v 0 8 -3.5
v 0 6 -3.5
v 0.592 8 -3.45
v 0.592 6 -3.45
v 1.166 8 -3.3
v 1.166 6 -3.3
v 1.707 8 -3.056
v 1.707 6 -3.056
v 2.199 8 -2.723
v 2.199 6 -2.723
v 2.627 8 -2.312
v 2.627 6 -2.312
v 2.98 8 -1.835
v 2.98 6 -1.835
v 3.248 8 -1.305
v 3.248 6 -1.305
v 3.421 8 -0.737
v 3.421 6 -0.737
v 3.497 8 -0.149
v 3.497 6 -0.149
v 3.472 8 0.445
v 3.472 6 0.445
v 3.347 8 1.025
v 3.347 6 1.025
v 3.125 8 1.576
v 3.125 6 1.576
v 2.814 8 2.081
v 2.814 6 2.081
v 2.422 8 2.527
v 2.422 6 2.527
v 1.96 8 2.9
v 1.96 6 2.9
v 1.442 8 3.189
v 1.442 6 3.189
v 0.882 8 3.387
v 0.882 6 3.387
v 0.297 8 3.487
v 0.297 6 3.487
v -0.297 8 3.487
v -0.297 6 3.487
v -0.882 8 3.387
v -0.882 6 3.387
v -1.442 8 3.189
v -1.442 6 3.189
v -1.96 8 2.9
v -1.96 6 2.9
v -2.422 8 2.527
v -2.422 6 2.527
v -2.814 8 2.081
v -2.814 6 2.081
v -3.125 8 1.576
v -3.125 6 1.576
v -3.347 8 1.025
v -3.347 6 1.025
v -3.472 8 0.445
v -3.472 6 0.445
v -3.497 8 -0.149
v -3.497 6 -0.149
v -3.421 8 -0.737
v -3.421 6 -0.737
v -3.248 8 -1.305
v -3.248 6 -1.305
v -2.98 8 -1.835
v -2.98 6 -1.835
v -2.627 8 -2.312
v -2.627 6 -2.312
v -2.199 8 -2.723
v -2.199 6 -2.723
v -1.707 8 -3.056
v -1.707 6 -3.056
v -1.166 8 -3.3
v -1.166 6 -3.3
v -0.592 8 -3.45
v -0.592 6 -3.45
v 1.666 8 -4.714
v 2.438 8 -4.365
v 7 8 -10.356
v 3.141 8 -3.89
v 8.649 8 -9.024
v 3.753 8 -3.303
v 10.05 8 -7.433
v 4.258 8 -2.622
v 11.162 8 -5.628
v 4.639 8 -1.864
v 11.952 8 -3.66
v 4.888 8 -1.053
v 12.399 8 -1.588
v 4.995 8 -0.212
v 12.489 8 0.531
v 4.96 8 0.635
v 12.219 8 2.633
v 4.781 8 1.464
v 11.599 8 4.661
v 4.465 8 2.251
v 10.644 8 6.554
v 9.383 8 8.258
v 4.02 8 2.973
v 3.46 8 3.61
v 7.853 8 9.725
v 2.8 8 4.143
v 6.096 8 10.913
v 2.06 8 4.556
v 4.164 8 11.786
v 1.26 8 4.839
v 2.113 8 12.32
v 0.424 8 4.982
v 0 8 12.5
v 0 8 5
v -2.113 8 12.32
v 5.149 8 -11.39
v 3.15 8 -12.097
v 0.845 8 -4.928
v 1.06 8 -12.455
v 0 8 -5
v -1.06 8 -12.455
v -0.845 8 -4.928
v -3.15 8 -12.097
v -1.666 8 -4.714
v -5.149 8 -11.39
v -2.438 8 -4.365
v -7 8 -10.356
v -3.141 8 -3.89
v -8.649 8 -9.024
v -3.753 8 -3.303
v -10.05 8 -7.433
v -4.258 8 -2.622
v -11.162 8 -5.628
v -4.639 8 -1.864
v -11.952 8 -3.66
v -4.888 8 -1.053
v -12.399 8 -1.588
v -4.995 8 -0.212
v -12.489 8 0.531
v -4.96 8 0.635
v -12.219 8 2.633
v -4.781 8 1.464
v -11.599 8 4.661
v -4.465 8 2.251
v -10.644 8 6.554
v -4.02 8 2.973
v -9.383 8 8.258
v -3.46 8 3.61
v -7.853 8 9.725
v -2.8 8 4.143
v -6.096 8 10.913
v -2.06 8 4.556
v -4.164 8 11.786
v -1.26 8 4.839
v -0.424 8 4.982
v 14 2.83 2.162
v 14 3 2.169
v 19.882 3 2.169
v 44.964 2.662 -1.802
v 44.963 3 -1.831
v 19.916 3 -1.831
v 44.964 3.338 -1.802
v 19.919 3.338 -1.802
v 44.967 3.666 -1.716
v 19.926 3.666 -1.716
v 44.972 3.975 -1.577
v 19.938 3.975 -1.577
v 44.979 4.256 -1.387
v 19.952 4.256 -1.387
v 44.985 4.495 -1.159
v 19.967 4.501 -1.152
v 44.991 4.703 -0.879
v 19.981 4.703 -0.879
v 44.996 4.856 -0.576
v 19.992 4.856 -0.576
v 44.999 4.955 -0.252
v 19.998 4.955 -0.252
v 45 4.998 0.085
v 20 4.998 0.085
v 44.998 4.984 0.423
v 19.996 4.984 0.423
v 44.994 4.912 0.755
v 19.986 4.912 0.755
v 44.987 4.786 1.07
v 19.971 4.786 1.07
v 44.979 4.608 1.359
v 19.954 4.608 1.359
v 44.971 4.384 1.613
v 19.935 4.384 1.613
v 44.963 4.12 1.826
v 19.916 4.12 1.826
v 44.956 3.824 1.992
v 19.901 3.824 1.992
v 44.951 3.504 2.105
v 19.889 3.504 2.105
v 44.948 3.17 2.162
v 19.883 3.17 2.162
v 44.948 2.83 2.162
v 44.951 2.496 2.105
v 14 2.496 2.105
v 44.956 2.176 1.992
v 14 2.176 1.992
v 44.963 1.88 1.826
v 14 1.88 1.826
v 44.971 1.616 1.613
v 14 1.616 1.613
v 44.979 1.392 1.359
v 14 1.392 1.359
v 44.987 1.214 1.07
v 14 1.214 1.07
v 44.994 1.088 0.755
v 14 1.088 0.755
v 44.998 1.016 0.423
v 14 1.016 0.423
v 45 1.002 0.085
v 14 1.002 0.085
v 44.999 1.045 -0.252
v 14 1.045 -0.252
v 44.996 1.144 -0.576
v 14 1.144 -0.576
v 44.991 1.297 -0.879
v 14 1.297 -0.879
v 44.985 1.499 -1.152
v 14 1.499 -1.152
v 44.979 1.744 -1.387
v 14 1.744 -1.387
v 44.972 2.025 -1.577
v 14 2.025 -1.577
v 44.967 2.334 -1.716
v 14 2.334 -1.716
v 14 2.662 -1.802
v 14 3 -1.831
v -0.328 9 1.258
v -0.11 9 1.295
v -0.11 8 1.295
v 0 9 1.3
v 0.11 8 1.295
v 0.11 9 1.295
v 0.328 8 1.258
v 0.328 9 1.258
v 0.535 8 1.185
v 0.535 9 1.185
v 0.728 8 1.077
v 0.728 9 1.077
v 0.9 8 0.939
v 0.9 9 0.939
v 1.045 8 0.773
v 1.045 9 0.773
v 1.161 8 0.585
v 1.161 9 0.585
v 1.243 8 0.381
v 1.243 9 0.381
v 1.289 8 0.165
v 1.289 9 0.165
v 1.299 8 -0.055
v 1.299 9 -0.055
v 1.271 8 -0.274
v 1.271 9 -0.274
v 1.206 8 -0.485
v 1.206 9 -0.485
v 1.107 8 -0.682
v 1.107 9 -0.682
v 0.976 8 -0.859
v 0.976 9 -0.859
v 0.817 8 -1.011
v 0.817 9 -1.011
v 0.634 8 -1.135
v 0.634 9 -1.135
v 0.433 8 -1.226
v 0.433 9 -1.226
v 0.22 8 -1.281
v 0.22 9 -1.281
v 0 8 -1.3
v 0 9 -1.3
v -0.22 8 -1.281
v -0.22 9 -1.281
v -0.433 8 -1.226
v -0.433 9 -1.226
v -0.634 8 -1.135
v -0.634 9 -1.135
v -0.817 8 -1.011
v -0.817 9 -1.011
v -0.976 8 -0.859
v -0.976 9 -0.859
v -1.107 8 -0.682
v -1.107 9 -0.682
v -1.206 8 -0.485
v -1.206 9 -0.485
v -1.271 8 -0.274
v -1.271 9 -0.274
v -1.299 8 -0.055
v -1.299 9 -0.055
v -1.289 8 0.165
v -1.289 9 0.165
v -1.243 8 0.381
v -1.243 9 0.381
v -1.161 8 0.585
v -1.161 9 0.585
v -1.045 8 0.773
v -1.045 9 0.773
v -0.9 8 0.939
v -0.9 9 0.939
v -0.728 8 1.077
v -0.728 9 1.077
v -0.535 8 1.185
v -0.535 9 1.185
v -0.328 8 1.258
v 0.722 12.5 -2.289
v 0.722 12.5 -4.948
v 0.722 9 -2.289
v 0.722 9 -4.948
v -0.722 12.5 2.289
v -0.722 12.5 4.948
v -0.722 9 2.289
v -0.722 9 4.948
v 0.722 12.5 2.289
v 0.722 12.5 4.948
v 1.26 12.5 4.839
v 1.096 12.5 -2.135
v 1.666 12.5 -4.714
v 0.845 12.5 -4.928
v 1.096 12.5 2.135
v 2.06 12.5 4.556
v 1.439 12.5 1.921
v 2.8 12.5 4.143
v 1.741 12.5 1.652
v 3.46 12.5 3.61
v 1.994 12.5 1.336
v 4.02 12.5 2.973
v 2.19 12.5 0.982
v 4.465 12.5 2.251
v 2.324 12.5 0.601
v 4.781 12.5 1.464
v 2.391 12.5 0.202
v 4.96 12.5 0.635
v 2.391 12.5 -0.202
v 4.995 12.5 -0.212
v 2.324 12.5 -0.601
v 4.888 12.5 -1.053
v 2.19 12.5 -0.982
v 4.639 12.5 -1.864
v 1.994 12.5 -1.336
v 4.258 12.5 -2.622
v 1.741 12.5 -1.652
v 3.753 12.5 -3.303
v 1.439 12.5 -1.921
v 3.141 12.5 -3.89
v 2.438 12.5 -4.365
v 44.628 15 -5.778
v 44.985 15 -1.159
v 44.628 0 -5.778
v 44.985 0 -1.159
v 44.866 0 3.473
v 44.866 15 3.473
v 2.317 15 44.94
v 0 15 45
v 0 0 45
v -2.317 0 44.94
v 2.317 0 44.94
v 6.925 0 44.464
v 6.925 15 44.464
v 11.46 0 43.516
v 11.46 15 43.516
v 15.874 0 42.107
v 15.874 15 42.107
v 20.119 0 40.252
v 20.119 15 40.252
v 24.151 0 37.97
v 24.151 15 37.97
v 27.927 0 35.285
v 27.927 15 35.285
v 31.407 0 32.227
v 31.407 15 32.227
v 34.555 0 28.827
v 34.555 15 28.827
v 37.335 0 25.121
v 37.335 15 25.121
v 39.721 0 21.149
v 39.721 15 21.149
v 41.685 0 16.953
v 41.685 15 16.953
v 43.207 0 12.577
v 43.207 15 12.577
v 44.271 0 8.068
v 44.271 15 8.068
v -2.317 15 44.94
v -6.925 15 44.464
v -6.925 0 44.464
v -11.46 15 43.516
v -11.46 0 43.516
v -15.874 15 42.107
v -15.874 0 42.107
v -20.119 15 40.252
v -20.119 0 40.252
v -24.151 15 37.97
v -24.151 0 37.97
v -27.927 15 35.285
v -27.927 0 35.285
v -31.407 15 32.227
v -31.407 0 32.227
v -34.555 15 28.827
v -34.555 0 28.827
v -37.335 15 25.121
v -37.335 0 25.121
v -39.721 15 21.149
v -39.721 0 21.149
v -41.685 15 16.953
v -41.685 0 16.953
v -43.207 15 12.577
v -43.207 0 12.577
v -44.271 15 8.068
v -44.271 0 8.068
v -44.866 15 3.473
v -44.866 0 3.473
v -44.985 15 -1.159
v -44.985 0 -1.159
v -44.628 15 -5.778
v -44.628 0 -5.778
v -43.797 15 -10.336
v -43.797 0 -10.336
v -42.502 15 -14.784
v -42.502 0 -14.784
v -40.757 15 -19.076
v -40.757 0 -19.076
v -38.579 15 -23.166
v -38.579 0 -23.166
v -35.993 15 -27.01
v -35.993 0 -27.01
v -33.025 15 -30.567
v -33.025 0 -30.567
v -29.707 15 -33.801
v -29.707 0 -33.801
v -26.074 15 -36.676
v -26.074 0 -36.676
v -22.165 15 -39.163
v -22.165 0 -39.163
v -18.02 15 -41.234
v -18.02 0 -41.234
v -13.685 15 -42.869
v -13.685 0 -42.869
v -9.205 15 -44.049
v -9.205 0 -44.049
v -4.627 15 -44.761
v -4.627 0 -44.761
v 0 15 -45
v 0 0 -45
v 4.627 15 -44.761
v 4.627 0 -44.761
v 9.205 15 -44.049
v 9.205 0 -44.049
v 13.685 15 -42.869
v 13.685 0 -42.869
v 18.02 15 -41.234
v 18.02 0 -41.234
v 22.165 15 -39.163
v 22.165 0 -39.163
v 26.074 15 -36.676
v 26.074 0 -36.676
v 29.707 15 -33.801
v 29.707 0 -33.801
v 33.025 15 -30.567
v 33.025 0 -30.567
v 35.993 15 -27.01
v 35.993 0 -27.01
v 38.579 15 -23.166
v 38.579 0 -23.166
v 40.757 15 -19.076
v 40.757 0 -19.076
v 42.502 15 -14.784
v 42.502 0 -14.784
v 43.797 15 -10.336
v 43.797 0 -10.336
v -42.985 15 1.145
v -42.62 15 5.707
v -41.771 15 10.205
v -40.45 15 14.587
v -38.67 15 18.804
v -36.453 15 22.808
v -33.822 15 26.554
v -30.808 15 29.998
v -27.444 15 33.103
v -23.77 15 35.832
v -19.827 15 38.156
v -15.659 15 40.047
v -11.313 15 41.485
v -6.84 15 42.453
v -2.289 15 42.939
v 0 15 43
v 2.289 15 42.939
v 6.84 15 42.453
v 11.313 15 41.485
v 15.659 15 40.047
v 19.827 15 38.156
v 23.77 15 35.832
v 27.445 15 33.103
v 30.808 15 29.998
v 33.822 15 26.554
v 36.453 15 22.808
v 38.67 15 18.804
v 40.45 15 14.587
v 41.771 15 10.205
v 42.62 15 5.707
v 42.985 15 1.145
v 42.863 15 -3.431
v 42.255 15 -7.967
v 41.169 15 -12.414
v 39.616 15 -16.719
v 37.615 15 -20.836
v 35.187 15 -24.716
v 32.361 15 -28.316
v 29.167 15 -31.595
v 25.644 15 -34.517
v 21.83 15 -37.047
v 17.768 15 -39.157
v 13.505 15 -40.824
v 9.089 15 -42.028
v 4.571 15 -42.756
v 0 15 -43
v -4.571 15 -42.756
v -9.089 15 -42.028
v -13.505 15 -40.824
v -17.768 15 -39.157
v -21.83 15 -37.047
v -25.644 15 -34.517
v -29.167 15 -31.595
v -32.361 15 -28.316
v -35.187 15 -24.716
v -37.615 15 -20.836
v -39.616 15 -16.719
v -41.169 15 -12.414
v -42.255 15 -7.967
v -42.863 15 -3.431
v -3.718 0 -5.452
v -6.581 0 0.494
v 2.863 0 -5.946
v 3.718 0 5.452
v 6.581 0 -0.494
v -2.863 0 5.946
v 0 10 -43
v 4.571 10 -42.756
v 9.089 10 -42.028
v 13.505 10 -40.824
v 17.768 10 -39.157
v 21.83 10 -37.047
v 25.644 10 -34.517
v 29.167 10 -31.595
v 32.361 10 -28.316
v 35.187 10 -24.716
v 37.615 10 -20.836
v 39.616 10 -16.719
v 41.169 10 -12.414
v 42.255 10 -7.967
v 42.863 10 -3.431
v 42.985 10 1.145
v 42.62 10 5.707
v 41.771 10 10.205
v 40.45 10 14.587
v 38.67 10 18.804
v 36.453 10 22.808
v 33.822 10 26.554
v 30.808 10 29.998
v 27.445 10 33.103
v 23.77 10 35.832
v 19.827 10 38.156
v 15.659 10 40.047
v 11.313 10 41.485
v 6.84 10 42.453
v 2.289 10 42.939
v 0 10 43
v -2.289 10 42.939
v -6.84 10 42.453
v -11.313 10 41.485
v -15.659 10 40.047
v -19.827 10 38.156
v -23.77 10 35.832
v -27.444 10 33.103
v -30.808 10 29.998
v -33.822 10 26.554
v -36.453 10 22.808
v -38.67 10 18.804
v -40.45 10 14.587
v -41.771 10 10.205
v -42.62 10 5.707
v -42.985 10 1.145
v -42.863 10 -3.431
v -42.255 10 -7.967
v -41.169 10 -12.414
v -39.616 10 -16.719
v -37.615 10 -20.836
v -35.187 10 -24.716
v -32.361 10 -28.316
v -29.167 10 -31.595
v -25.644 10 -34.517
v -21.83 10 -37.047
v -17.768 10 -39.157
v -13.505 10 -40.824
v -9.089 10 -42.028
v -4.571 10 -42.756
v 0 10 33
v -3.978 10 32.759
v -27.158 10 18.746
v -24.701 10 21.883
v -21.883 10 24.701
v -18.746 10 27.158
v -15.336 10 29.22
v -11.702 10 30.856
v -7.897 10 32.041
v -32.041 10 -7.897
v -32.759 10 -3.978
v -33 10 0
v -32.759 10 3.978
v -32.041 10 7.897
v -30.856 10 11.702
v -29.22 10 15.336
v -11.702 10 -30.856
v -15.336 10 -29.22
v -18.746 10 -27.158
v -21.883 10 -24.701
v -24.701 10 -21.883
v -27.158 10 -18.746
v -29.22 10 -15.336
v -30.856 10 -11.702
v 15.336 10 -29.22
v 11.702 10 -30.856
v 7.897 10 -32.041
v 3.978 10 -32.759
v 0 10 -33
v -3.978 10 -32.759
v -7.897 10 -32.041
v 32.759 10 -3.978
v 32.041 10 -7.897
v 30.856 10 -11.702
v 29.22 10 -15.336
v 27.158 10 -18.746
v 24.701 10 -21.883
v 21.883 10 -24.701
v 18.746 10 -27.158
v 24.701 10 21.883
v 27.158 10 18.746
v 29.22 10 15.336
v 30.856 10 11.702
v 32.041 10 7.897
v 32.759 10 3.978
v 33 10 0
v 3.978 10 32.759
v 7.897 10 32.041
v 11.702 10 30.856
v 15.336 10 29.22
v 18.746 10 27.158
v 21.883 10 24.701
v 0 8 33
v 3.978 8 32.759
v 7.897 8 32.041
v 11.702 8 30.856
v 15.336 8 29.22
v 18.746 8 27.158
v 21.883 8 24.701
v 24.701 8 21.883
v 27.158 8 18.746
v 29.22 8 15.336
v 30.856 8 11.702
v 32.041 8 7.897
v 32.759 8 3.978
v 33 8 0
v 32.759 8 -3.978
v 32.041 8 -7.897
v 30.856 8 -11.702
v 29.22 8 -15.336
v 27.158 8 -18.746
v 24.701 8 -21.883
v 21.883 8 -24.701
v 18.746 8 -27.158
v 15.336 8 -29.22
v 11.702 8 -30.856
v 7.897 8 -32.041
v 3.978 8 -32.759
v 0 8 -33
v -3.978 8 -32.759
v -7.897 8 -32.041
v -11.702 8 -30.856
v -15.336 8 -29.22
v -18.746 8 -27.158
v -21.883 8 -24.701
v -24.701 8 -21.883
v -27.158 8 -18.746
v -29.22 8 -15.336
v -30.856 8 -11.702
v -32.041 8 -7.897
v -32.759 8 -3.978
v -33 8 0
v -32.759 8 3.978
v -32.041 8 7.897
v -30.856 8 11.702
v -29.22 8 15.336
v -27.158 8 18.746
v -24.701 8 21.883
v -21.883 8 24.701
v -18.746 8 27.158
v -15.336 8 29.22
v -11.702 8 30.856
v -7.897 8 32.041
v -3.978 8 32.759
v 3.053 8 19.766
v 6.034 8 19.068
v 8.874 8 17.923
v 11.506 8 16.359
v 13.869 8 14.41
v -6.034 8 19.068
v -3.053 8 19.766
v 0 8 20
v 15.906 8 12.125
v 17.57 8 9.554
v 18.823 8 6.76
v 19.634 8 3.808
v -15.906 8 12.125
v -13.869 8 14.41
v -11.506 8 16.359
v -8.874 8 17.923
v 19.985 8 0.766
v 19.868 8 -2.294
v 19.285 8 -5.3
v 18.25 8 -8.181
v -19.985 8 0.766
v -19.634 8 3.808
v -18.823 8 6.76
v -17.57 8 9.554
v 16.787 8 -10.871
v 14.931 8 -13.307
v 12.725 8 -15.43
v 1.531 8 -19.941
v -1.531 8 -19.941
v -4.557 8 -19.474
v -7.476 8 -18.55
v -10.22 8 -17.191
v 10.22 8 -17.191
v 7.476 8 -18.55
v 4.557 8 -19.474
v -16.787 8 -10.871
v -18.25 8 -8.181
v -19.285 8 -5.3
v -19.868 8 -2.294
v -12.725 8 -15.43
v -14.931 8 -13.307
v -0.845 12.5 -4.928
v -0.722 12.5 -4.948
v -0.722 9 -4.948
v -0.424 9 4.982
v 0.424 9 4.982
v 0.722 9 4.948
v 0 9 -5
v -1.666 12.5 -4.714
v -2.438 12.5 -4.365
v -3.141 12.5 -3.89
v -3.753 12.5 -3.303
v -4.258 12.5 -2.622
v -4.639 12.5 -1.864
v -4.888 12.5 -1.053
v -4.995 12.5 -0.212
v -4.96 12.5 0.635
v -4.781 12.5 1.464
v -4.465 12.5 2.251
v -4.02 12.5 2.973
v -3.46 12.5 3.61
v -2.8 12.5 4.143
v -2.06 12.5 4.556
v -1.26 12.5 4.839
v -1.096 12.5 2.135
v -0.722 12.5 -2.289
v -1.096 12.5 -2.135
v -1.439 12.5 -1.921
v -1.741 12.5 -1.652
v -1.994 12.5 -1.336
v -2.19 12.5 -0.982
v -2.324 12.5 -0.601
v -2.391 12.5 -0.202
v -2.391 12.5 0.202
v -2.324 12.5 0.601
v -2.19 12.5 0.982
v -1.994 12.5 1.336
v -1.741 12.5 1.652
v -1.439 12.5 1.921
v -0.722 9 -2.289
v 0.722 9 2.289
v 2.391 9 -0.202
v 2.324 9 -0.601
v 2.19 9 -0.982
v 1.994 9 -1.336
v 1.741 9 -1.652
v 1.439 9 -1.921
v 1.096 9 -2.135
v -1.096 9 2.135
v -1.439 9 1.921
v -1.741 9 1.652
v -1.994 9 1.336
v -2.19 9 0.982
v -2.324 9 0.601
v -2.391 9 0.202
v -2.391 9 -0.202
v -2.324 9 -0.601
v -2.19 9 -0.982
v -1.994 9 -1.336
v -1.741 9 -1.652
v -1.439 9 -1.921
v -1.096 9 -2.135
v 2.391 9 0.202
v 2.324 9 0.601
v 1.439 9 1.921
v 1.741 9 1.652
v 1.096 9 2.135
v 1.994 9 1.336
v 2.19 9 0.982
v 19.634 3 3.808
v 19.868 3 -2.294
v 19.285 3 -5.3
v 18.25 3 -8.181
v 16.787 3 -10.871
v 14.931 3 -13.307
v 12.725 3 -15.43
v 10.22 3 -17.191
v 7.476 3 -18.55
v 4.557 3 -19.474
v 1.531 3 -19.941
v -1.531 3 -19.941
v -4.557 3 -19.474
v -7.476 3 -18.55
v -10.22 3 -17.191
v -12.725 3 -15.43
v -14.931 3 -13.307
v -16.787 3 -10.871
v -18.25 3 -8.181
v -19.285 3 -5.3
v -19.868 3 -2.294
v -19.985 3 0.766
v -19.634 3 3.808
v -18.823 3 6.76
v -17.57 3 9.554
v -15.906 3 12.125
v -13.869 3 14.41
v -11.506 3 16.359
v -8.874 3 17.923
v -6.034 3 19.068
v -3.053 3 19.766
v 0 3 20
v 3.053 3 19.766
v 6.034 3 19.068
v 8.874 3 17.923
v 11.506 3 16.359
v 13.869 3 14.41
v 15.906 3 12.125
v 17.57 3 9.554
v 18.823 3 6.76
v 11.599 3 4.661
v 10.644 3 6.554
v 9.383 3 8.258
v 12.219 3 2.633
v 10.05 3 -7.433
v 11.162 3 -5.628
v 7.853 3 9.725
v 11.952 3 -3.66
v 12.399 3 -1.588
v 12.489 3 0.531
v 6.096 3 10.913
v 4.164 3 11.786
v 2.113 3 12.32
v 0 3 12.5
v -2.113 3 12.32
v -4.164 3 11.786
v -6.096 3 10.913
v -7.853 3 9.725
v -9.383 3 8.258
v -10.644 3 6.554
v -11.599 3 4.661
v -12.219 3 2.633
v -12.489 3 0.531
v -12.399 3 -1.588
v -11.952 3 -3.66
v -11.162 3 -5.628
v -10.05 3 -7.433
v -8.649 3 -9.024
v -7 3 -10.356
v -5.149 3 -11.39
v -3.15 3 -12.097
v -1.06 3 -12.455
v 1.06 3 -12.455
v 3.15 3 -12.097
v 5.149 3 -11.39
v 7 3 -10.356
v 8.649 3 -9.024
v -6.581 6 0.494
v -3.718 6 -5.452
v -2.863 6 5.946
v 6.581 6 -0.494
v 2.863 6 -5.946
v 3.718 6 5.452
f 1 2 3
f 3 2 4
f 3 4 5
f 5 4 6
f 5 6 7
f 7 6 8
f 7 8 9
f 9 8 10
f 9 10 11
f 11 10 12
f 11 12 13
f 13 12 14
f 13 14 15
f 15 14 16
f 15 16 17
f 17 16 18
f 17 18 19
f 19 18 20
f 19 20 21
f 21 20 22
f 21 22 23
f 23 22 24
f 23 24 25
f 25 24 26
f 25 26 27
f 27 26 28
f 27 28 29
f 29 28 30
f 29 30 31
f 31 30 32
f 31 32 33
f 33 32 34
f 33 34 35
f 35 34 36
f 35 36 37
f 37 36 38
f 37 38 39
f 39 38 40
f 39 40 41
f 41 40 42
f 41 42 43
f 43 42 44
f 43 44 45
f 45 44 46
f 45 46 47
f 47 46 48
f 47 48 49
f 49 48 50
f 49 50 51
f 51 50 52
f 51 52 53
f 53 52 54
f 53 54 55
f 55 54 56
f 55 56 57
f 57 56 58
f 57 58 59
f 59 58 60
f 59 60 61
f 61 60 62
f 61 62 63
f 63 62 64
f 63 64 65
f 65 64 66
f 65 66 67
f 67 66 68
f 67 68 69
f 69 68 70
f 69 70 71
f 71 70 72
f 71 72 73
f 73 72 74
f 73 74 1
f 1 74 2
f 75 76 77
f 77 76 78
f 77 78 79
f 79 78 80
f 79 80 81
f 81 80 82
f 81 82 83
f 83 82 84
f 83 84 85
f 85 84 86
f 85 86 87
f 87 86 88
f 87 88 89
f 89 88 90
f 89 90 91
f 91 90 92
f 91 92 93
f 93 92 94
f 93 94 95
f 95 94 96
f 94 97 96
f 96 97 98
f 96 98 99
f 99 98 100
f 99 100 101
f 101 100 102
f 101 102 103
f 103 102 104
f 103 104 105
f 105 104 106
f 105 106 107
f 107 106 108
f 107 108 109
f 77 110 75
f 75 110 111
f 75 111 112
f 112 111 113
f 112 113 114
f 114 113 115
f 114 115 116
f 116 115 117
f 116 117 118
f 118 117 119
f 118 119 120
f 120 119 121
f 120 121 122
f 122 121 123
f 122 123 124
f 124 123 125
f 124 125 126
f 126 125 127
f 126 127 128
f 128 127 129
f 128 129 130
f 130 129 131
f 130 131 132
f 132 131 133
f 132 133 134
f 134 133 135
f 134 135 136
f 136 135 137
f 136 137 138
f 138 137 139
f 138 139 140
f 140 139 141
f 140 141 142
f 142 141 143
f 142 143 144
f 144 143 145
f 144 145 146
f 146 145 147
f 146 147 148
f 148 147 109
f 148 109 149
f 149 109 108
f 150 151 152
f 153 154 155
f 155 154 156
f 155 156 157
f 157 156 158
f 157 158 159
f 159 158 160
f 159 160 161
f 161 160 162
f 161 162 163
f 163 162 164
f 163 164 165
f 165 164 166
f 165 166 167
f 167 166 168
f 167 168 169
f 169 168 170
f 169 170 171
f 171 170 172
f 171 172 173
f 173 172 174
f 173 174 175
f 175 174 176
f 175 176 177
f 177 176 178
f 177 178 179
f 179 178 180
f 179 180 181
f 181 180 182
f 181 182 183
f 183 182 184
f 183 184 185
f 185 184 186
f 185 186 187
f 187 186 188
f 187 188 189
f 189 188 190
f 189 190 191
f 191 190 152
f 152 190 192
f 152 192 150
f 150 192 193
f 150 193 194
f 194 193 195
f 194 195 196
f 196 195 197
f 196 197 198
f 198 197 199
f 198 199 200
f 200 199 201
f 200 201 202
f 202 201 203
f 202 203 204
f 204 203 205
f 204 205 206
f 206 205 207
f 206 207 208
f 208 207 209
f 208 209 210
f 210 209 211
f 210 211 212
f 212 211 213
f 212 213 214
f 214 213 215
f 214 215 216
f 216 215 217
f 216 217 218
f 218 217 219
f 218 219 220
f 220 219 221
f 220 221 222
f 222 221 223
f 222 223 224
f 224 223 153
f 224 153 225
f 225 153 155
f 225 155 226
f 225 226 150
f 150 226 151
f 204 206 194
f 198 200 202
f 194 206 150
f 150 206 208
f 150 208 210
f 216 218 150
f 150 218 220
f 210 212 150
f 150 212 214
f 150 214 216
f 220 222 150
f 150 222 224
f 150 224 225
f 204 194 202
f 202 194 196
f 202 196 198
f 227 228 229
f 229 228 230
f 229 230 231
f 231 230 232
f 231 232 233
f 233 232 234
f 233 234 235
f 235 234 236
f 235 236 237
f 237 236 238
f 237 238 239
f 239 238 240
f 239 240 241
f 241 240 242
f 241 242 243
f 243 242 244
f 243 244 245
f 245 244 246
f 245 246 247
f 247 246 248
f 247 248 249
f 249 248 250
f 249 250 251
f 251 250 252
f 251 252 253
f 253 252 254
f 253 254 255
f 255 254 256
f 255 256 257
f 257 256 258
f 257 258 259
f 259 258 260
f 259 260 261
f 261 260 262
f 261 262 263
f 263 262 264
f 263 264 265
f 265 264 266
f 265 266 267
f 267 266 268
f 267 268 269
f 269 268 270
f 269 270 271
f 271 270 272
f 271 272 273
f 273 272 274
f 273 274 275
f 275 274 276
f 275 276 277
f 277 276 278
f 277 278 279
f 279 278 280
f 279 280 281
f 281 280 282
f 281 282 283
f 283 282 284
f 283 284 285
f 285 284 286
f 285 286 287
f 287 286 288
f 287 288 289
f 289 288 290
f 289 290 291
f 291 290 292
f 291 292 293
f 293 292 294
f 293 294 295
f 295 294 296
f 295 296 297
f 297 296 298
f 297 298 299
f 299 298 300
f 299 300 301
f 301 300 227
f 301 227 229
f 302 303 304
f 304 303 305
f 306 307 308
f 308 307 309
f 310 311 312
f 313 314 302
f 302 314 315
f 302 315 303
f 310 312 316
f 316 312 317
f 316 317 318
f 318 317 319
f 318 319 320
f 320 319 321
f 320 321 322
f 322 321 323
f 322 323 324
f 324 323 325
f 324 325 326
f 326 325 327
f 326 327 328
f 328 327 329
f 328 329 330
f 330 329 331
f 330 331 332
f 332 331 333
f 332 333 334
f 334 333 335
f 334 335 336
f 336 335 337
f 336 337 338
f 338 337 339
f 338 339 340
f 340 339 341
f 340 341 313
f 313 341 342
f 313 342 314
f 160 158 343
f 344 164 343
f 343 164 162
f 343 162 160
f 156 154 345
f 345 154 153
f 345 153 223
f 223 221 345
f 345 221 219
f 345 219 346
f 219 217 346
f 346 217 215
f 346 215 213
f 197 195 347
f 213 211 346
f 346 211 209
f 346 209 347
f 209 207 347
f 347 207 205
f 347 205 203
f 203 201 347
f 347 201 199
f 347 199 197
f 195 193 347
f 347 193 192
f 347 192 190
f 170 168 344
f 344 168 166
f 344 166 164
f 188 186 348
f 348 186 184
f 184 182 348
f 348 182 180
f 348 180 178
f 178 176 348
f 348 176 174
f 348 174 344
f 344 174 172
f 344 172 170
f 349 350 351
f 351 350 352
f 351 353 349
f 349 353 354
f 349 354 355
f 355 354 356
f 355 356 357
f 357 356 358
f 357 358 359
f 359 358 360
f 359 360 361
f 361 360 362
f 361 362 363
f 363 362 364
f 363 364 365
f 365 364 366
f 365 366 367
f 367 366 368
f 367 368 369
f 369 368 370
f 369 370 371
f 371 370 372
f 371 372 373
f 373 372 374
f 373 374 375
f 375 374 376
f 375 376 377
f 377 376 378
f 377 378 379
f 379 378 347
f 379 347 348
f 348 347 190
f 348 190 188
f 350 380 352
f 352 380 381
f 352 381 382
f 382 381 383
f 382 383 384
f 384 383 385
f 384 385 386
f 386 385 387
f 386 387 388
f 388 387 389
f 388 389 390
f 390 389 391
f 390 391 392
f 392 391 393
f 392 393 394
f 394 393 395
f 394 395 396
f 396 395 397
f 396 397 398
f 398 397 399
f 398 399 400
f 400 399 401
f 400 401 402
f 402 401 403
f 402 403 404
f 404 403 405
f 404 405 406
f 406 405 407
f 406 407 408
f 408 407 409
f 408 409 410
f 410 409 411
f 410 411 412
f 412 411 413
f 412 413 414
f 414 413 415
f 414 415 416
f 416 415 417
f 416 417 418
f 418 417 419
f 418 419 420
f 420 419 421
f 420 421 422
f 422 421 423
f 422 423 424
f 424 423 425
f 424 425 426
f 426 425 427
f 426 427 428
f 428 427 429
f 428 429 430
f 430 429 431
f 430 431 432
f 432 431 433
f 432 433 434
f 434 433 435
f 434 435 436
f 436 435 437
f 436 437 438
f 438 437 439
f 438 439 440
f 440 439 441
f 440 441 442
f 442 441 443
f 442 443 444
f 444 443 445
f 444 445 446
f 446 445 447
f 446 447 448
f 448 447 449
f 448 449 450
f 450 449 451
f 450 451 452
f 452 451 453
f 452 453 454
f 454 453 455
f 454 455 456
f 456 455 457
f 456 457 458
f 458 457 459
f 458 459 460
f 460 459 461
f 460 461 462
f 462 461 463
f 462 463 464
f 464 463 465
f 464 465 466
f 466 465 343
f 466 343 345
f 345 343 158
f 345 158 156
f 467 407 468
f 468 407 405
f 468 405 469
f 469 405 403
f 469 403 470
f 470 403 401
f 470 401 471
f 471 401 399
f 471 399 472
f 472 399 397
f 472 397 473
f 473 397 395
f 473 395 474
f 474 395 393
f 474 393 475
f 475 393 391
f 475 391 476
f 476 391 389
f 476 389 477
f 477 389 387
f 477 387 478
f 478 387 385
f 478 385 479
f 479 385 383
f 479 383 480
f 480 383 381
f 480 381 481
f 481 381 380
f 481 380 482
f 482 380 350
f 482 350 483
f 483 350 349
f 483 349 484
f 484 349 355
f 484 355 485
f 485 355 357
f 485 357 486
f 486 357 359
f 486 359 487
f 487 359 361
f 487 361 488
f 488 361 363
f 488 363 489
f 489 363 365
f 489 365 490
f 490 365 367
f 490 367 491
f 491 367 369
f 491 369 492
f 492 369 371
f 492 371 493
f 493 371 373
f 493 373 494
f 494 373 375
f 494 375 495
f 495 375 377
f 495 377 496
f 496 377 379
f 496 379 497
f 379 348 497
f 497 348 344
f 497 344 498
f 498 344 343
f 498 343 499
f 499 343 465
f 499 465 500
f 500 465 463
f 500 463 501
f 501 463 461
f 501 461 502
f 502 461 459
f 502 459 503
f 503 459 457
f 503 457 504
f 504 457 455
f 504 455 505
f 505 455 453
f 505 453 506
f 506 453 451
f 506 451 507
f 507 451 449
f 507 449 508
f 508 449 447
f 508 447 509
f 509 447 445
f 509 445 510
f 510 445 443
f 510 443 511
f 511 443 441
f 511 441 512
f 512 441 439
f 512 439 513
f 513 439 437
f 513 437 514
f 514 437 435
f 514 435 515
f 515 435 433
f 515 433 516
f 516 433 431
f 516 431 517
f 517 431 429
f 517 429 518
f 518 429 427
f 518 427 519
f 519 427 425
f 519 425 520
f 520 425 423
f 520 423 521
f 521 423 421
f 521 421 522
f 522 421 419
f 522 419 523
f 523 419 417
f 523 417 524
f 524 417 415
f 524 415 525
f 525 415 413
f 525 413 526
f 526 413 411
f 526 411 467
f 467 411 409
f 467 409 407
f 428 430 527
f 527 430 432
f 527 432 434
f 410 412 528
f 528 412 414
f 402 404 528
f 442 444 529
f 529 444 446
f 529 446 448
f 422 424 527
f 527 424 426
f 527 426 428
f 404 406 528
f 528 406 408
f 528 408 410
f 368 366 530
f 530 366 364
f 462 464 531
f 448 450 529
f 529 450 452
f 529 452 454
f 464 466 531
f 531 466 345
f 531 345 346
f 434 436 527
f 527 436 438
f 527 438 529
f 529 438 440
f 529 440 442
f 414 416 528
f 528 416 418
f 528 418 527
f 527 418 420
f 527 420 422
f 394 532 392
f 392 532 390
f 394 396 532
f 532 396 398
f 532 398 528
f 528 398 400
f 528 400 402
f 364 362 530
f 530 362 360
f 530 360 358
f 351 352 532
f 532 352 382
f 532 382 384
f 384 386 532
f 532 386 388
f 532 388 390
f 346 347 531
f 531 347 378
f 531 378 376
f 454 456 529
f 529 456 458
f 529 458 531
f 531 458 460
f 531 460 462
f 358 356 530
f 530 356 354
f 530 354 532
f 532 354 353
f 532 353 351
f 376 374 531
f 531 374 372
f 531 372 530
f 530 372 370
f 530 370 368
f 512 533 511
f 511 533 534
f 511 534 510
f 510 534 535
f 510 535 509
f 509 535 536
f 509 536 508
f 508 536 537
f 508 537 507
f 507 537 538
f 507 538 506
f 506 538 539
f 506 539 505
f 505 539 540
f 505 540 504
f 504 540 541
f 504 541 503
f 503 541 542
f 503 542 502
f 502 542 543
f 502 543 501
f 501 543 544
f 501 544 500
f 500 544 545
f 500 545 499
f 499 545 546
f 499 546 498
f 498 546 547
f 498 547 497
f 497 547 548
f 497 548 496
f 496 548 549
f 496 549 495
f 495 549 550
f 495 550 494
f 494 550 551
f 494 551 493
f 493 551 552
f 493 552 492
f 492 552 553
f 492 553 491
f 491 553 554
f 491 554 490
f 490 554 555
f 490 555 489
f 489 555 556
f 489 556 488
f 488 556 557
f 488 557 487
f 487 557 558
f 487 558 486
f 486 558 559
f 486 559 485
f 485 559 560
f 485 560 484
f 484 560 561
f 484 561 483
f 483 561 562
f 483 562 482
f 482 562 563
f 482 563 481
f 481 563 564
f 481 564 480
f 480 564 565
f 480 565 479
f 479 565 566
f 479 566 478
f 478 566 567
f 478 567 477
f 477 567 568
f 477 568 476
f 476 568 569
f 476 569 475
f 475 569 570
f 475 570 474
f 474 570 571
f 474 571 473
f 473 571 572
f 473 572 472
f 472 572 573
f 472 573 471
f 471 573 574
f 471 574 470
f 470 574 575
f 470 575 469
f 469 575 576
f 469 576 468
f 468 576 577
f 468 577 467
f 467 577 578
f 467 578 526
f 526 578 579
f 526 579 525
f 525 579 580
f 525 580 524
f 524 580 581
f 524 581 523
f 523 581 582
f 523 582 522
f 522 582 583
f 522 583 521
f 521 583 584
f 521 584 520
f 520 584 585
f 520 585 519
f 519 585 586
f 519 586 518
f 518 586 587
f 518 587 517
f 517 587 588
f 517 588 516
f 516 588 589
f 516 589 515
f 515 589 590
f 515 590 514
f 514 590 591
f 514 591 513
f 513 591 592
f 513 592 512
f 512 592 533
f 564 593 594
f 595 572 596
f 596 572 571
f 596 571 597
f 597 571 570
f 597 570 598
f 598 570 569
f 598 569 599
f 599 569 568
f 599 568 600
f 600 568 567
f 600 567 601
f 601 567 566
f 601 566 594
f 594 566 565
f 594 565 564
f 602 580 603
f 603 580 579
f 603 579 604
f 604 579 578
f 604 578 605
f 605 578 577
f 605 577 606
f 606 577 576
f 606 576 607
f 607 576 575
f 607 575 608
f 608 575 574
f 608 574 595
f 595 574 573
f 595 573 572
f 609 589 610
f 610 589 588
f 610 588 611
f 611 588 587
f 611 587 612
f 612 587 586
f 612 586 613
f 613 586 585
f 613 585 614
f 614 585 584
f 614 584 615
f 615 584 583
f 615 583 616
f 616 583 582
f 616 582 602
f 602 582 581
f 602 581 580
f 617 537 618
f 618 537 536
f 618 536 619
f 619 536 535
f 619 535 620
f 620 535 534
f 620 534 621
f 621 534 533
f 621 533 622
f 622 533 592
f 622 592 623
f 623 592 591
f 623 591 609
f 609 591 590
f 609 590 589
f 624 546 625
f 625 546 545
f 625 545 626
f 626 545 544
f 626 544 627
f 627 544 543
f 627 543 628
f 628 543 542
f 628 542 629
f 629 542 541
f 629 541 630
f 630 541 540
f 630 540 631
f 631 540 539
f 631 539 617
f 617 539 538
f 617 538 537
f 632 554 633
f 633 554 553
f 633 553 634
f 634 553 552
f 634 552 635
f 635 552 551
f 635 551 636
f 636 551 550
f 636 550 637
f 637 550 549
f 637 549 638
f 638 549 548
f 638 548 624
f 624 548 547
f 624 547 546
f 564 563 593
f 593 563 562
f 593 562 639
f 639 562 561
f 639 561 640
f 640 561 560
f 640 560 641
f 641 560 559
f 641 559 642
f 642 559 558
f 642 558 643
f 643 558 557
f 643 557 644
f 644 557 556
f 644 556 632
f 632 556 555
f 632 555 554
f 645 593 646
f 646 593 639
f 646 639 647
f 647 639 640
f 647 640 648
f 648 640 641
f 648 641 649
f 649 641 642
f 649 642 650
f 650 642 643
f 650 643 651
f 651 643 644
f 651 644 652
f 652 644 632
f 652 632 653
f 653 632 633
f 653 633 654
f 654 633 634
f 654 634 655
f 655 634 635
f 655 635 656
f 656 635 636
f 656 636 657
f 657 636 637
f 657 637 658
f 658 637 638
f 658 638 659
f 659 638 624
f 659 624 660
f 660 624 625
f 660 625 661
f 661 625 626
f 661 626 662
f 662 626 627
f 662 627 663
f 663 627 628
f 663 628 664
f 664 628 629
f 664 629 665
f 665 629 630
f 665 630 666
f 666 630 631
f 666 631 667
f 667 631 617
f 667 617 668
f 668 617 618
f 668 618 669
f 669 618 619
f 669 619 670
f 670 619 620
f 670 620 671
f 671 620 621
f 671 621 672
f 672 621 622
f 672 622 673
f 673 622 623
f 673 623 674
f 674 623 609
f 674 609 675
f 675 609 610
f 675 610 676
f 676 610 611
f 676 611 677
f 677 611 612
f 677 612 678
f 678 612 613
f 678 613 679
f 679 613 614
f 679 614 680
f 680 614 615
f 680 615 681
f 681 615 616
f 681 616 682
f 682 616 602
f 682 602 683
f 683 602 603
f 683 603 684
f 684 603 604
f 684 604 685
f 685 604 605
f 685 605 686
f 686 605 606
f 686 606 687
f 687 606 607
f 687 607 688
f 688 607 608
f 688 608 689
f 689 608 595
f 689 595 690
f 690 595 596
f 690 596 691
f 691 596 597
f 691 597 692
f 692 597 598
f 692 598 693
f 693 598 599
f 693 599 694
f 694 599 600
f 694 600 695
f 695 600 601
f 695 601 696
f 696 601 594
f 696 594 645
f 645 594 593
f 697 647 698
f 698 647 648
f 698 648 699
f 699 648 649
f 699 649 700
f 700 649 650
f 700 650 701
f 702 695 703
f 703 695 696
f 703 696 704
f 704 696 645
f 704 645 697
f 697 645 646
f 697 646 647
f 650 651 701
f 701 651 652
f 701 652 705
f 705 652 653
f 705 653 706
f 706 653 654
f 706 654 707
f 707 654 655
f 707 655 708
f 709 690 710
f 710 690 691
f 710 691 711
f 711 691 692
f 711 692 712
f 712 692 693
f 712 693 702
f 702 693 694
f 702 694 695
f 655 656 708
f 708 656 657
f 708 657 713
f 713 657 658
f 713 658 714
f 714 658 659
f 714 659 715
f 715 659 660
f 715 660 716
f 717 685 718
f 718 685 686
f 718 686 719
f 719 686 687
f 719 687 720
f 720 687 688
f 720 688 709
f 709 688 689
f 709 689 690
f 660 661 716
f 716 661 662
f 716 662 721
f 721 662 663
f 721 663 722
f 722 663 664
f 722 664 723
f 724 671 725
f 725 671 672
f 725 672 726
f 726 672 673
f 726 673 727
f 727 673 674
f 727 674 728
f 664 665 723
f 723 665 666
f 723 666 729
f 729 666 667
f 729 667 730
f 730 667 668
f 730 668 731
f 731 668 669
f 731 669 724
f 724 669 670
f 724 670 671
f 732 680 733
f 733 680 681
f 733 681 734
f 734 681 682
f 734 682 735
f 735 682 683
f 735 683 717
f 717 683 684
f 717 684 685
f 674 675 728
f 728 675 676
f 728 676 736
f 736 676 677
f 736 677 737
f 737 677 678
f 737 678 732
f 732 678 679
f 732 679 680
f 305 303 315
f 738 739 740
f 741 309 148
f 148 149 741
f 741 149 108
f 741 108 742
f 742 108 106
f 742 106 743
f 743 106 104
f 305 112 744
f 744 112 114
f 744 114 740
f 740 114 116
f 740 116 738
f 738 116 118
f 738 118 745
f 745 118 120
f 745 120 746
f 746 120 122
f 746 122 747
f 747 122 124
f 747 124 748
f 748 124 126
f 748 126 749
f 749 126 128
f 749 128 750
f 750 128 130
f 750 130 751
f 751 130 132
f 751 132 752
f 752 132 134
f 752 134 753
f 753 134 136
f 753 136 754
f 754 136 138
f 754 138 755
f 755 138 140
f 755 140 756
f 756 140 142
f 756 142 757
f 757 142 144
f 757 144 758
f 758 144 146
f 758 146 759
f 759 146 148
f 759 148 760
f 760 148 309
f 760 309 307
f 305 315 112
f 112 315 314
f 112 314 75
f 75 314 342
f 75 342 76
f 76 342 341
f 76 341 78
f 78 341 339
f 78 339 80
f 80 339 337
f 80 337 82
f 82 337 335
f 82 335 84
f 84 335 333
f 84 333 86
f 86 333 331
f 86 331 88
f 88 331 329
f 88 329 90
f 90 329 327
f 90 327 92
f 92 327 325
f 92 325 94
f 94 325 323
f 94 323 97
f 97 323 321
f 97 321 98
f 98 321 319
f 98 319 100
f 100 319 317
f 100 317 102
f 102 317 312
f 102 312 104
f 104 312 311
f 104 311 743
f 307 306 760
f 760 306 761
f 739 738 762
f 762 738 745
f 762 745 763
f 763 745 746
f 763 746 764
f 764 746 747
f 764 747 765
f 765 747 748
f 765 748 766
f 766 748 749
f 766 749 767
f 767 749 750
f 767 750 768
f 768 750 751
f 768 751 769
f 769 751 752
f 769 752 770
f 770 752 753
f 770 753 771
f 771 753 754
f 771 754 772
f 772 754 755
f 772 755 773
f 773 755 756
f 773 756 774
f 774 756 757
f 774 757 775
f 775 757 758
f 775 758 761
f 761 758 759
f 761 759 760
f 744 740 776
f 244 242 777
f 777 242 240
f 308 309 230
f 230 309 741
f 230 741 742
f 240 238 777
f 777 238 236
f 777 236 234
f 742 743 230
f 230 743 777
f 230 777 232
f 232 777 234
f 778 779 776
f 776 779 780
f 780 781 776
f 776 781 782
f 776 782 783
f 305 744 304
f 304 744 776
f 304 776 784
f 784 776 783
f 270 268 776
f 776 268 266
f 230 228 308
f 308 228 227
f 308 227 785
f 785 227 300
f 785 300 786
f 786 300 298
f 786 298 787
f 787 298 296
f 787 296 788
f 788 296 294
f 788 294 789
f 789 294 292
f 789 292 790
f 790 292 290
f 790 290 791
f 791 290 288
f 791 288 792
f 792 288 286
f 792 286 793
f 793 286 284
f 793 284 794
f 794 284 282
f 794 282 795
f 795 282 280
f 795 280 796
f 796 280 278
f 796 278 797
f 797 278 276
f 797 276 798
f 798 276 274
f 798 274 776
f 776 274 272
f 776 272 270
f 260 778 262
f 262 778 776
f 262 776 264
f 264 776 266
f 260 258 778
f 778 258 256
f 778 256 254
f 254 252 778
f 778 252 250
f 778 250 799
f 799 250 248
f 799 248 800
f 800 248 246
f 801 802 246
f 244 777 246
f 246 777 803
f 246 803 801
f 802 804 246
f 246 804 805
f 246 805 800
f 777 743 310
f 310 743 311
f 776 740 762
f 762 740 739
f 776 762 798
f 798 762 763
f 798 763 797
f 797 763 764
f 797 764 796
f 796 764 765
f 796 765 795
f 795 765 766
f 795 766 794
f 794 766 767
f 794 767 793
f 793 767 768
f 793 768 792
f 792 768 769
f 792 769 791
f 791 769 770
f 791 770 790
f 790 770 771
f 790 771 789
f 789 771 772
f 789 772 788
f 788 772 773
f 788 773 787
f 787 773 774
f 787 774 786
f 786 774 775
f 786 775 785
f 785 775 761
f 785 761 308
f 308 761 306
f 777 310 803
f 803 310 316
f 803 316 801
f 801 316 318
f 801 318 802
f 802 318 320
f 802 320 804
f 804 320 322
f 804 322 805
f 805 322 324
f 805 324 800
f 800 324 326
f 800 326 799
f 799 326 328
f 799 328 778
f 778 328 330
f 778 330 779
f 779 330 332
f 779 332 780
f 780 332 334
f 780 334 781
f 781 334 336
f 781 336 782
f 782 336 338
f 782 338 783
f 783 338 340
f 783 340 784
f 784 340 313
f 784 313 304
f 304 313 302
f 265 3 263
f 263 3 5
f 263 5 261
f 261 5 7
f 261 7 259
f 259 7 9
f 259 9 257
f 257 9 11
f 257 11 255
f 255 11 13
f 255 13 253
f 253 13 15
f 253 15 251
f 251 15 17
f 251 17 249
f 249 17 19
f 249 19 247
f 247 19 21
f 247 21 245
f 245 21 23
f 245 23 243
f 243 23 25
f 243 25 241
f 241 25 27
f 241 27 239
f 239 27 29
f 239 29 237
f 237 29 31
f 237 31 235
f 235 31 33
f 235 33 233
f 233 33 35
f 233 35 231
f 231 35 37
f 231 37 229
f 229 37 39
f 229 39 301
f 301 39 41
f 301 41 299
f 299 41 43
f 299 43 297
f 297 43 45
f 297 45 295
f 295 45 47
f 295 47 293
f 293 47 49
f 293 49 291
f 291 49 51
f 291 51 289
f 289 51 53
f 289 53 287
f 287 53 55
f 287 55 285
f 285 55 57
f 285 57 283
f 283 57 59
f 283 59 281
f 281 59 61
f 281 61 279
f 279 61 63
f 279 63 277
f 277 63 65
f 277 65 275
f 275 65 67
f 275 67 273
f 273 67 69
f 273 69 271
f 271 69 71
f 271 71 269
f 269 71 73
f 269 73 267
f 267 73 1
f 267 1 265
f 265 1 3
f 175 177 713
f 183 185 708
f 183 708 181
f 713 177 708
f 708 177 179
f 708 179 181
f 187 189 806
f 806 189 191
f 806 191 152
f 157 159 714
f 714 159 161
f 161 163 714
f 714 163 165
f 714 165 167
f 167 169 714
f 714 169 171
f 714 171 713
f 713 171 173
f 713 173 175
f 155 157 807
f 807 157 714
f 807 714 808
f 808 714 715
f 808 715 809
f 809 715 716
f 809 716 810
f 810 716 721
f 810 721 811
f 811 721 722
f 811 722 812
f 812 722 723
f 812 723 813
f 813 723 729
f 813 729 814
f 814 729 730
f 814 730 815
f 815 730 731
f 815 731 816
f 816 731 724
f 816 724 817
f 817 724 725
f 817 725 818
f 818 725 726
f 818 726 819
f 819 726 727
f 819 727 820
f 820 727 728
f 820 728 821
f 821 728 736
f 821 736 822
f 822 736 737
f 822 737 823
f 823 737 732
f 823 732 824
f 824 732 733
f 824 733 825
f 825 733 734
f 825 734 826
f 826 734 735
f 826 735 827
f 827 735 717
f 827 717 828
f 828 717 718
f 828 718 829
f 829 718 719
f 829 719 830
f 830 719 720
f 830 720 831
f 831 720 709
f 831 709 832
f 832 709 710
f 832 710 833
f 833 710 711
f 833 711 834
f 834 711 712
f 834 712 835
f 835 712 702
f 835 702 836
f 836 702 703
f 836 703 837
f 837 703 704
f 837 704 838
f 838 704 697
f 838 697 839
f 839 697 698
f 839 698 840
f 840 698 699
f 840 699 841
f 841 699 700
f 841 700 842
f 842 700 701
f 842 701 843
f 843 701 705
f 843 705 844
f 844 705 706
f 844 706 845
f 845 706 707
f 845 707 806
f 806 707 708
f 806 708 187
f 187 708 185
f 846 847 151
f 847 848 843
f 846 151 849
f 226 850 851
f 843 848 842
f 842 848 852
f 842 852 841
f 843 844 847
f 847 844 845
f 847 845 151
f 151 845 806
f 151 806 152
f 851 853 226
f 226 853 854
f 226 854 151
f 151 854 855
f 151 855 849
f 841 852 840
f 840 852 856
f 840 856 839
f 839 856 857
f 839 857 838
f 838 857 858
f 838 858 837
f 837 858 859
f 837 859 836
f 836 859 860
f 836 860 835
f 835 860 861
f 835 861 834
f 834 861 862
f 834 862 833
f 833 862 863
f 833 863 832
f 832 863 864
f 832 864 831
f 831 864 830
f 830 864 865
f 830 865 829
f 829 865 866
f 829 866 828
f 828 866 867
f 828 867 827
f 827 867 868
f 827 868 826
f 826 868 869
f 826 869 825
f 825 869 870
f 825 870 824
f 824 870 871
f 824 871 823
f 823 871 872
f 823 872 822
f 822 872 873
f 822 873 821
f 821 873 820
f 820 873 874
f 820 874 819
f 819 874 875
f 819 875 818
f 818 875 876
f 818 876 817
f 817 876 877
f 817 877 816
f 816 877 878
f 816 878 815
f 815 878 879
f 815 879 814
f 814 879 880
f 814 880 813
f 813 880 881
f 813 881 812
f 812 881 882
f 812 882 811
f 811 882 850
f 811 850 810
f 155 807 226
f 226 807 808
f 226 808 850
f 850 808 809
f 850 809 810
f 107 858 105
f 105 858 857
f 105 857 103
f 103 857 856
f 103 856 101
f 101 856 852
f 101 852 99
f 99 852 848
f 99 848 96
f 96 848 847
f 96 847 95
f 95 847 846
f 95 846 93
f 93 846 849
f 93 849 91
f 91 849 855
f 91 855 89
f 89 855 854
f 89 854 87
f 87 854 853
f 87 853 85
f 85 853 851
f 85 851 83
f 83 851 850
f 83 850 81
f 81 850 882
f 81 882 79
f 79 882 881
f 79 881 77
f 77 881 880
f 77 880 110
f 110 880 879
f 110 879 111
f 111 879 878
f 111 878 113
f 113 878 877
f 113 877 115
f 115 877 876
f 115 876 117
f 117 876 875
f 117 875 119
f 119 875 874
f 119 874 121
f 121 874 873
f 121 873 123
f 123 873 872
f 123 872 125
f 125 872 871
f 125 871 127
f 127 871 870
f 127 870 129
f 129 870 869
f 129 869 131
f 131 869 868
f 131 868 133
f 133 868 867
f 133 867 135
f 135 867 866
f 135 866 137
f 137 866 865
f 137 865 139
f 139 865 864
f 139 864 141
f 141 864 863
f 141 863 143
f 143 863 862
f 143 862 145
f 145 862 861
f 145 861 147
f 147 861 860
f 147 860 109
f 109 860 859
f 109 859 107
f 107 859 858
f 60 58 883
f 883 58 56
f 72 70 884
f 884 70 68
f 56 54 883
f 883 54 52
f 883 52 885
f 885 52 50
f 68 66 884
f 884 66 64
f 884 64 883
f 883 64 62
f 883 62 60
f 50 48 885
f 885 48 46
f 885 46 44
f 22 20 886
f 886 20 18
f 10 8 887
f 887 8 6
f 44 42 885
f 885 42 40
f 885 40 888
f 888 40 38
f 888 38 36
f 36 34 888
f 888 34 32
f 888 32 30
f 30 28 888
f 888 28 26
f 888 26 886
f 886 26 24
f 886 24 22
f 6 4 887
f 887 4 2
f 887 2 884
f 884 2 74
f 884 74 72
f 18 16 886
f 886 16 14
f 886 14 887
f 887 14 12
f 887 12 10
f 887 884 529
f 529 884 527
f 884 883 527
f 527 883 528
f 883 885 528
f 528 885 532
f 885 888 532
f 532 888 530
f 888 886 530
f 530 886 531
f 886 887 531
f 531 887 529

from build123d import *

# Parameters (mm, degrees)
SKETCH1_R               = 45
BOSS_EXTRUDE1_DEPTH     = 15
SHELL1_T                = -2
SKETCH11_R              = 43.514084806
BOSS_EXTRUDE4_DEPTH     = 8
SKETCH12_R              = 33
CUT_EXTRUDE2_DEPTH      = 2
SKETCH2_R               = 5
BOSS_EXTRUDE2_DEPTH     = 4.5
SKETCH16_W              = 1.444334904
SKETCH16_H              = 11.111163506
CUT_EXTRUDE3_DEPTH      = 3.5
SKETCH7_R               = 2.4
CUT_EXTRUDE1_DEPTH      = 3.5
SKETCH18_R              = 1.3
CUT_EXTRUDE4_DEPTH      = 17
SKETCH19_R              = 3.5
CUT_EXTRUDE5_DEPTH      = 8
CUT_EXTRUDE6_DEPTH      = 77.485292704
CUT_EXTRUDE6_DEPTH_BACK = 1
SKETCH20_R              = 2
SKETCH22_R              = 20
SKETCH22_R_2            = 12.5
CUT_EXTRUDE10_DEPTH     = 5
CUT_EXTRUDE11_DEPTH     = 6


with BuildPart() as part:
    # Sketch1 → Boss-Extrude1 (new body)
    with BuildSketch(Plane(origin=(0, 0, 0), x_dir=(1, 0, 0), z_dir=(0, 1, 0))):
        with Locations(Location((0, 0, 0), (0, 0, 270))):
            Circle(SKETCH1_R)
    extrude(amount=BOSS_EXTRUDE1_DEPTH)

    # Shell1
    shell1_openings = [part.faces().sort_by_distance(p)[0] for p in [
        (0, 15, 0),
    ]]
    offset(amount=SHELL1_T, openings=shell1_openings, kind=Kind.INTERSECTION)

    # Sketch11 → Boss-Extrude4 (add)
    with BuildSketch(Plane(origin=(0, 2, 0), x_dir=(1, 0, 0), z_dir=(0, 1, 0))):
        with Locations((0, 0.514084806)):
            Circle(SKETCH11_R)
    extrude(amount=BOSS_EXTRUDE4_DEPTH)

    # Sketch12 → Cut-Extrude2 (cut)
    with BuildSketch(Plane(origin=(0, 10, 0), x_dir=(1, 0, 0), z_dir=(0, 1, 0))):
        with Locations(Location((0, 0, 0), (0, 0, 270))):
            Circle(SKETCH12_R)
    extrude(amount=-CUT_EXTRUDE2_DEPTH, mode=Mode.SUBTRACT)

    # Sketch2 → Boss-Extrude2 (add)
    with BuildSketch(Plane(origin=(0, 8, 0), x_dir=(1, 0, 0), z_dir=(0, 1, 0))):
        with Locations(Location((0, 0, 0), (0, 0, 270))):
            Circle(SKETCH2_R)
    extrude(amount=BOSS_EXTRUDE2_DEPTH)

    # Sketch16 → Cut-Extrude3 (cut)
    with BuildSketch(Plane(origin=(0, 12.5, 0), x_dir=(1, 0, 0), z_dir=(0, 1, 0))):
        Rectangle(SKETCH16_W, SKETCH16_H)
    extrude(amount=-CUT_EXTRUDE3_DEPTH, mode=Mode.SUBTRACT)

    # Sketch7 → Cut-Extrude1 (cut)
    with BuildSketch(Plane(origin=(0, 12.5, 0), x_dir=(1, 0, 0), z_dir=(0, 1, 0))):
        Circle(SKETCH7_R)
    extrude(amount=-CUT_EXTRUDE1_DEPTH, mode=Mode.SUBTRACT)

    # Sketch18 → Cut-Extrude4 (cut)
    with BuildSketch(Plane.XZ):
        with Locations(Location((0, 0, 0), (0, 0, 270))):
            Circle(SKETCH18_R)
    extrude(amount=-CUT_EXTRUDE4_DEPTH, mode=Mode.SUBTRACT)

    # Sketch19 → Cut-Extrude5 (cut)
    with BuildSketch(Plane.XZ):
        with Locations(Location((0, 0, 0), (0, 0, 270))):
            Circle(SKETCH19_R)
    extrude(amount=-CUT_EXTRUDE5_DEPTH, mode=Mode.SUBTRACT)

    # Sketch20 → Cut-Extrude6 (cut, two sides: drawn at the far end of the back side and taken through both)
    with BuildSketch(Plane(origin=(15, 0, 0), x_dir=(0, 0, -1), z_dir=(1, 0, 0)).offset(-CUT_EXTRUDE6_DEPTH_BACK)):
        with Locations((-0.169435032, 3)):
            Circle(SKETCH20_R)
    extrude(amount=CUT_EXTRUDE6_DEPTH + CUT_EXTRUDE6_DEPTH_BACK, mode=Mode.SUBTRACT)

    # Sketch22 → Cut-Extrude10 (cut)
    with BuildSketch(Plane(origin=(0, 8, 0), x_dir=(1, 0, 0), z_dir=(0, 1, 0))):
        with Locations(Location((0, 0, 0), (0, 0, 270))):
            Circle(SKETCH22_R)
        with Locations(Location((0, 0, 0), (0, 0, 270))):
            Circle(SKETCH22_R_2, mode=Mode.SUBTRACT)
    extrude(amount=-CUT_EXTRUDE10_DEPTH, mode=Mode.SUBTRACT)

    # Sketch23 → Cut-Extrude11 (cut)
    with BuildSketch(Plane.XZ):
        Polygon((2.862741159, -5.945839979), (6.580619048, -0.493713422), (3.71787789, 5.452126557), (-2.862741159, 5.945839979), (-6.580619048, 0.493713422), (-3.71787789, -5.452126557), align=None)
    extrude(amount=-CUT_EXTRUDE11_DEPTH, mode=Mode.SUBTRACT)


solid = part.part
